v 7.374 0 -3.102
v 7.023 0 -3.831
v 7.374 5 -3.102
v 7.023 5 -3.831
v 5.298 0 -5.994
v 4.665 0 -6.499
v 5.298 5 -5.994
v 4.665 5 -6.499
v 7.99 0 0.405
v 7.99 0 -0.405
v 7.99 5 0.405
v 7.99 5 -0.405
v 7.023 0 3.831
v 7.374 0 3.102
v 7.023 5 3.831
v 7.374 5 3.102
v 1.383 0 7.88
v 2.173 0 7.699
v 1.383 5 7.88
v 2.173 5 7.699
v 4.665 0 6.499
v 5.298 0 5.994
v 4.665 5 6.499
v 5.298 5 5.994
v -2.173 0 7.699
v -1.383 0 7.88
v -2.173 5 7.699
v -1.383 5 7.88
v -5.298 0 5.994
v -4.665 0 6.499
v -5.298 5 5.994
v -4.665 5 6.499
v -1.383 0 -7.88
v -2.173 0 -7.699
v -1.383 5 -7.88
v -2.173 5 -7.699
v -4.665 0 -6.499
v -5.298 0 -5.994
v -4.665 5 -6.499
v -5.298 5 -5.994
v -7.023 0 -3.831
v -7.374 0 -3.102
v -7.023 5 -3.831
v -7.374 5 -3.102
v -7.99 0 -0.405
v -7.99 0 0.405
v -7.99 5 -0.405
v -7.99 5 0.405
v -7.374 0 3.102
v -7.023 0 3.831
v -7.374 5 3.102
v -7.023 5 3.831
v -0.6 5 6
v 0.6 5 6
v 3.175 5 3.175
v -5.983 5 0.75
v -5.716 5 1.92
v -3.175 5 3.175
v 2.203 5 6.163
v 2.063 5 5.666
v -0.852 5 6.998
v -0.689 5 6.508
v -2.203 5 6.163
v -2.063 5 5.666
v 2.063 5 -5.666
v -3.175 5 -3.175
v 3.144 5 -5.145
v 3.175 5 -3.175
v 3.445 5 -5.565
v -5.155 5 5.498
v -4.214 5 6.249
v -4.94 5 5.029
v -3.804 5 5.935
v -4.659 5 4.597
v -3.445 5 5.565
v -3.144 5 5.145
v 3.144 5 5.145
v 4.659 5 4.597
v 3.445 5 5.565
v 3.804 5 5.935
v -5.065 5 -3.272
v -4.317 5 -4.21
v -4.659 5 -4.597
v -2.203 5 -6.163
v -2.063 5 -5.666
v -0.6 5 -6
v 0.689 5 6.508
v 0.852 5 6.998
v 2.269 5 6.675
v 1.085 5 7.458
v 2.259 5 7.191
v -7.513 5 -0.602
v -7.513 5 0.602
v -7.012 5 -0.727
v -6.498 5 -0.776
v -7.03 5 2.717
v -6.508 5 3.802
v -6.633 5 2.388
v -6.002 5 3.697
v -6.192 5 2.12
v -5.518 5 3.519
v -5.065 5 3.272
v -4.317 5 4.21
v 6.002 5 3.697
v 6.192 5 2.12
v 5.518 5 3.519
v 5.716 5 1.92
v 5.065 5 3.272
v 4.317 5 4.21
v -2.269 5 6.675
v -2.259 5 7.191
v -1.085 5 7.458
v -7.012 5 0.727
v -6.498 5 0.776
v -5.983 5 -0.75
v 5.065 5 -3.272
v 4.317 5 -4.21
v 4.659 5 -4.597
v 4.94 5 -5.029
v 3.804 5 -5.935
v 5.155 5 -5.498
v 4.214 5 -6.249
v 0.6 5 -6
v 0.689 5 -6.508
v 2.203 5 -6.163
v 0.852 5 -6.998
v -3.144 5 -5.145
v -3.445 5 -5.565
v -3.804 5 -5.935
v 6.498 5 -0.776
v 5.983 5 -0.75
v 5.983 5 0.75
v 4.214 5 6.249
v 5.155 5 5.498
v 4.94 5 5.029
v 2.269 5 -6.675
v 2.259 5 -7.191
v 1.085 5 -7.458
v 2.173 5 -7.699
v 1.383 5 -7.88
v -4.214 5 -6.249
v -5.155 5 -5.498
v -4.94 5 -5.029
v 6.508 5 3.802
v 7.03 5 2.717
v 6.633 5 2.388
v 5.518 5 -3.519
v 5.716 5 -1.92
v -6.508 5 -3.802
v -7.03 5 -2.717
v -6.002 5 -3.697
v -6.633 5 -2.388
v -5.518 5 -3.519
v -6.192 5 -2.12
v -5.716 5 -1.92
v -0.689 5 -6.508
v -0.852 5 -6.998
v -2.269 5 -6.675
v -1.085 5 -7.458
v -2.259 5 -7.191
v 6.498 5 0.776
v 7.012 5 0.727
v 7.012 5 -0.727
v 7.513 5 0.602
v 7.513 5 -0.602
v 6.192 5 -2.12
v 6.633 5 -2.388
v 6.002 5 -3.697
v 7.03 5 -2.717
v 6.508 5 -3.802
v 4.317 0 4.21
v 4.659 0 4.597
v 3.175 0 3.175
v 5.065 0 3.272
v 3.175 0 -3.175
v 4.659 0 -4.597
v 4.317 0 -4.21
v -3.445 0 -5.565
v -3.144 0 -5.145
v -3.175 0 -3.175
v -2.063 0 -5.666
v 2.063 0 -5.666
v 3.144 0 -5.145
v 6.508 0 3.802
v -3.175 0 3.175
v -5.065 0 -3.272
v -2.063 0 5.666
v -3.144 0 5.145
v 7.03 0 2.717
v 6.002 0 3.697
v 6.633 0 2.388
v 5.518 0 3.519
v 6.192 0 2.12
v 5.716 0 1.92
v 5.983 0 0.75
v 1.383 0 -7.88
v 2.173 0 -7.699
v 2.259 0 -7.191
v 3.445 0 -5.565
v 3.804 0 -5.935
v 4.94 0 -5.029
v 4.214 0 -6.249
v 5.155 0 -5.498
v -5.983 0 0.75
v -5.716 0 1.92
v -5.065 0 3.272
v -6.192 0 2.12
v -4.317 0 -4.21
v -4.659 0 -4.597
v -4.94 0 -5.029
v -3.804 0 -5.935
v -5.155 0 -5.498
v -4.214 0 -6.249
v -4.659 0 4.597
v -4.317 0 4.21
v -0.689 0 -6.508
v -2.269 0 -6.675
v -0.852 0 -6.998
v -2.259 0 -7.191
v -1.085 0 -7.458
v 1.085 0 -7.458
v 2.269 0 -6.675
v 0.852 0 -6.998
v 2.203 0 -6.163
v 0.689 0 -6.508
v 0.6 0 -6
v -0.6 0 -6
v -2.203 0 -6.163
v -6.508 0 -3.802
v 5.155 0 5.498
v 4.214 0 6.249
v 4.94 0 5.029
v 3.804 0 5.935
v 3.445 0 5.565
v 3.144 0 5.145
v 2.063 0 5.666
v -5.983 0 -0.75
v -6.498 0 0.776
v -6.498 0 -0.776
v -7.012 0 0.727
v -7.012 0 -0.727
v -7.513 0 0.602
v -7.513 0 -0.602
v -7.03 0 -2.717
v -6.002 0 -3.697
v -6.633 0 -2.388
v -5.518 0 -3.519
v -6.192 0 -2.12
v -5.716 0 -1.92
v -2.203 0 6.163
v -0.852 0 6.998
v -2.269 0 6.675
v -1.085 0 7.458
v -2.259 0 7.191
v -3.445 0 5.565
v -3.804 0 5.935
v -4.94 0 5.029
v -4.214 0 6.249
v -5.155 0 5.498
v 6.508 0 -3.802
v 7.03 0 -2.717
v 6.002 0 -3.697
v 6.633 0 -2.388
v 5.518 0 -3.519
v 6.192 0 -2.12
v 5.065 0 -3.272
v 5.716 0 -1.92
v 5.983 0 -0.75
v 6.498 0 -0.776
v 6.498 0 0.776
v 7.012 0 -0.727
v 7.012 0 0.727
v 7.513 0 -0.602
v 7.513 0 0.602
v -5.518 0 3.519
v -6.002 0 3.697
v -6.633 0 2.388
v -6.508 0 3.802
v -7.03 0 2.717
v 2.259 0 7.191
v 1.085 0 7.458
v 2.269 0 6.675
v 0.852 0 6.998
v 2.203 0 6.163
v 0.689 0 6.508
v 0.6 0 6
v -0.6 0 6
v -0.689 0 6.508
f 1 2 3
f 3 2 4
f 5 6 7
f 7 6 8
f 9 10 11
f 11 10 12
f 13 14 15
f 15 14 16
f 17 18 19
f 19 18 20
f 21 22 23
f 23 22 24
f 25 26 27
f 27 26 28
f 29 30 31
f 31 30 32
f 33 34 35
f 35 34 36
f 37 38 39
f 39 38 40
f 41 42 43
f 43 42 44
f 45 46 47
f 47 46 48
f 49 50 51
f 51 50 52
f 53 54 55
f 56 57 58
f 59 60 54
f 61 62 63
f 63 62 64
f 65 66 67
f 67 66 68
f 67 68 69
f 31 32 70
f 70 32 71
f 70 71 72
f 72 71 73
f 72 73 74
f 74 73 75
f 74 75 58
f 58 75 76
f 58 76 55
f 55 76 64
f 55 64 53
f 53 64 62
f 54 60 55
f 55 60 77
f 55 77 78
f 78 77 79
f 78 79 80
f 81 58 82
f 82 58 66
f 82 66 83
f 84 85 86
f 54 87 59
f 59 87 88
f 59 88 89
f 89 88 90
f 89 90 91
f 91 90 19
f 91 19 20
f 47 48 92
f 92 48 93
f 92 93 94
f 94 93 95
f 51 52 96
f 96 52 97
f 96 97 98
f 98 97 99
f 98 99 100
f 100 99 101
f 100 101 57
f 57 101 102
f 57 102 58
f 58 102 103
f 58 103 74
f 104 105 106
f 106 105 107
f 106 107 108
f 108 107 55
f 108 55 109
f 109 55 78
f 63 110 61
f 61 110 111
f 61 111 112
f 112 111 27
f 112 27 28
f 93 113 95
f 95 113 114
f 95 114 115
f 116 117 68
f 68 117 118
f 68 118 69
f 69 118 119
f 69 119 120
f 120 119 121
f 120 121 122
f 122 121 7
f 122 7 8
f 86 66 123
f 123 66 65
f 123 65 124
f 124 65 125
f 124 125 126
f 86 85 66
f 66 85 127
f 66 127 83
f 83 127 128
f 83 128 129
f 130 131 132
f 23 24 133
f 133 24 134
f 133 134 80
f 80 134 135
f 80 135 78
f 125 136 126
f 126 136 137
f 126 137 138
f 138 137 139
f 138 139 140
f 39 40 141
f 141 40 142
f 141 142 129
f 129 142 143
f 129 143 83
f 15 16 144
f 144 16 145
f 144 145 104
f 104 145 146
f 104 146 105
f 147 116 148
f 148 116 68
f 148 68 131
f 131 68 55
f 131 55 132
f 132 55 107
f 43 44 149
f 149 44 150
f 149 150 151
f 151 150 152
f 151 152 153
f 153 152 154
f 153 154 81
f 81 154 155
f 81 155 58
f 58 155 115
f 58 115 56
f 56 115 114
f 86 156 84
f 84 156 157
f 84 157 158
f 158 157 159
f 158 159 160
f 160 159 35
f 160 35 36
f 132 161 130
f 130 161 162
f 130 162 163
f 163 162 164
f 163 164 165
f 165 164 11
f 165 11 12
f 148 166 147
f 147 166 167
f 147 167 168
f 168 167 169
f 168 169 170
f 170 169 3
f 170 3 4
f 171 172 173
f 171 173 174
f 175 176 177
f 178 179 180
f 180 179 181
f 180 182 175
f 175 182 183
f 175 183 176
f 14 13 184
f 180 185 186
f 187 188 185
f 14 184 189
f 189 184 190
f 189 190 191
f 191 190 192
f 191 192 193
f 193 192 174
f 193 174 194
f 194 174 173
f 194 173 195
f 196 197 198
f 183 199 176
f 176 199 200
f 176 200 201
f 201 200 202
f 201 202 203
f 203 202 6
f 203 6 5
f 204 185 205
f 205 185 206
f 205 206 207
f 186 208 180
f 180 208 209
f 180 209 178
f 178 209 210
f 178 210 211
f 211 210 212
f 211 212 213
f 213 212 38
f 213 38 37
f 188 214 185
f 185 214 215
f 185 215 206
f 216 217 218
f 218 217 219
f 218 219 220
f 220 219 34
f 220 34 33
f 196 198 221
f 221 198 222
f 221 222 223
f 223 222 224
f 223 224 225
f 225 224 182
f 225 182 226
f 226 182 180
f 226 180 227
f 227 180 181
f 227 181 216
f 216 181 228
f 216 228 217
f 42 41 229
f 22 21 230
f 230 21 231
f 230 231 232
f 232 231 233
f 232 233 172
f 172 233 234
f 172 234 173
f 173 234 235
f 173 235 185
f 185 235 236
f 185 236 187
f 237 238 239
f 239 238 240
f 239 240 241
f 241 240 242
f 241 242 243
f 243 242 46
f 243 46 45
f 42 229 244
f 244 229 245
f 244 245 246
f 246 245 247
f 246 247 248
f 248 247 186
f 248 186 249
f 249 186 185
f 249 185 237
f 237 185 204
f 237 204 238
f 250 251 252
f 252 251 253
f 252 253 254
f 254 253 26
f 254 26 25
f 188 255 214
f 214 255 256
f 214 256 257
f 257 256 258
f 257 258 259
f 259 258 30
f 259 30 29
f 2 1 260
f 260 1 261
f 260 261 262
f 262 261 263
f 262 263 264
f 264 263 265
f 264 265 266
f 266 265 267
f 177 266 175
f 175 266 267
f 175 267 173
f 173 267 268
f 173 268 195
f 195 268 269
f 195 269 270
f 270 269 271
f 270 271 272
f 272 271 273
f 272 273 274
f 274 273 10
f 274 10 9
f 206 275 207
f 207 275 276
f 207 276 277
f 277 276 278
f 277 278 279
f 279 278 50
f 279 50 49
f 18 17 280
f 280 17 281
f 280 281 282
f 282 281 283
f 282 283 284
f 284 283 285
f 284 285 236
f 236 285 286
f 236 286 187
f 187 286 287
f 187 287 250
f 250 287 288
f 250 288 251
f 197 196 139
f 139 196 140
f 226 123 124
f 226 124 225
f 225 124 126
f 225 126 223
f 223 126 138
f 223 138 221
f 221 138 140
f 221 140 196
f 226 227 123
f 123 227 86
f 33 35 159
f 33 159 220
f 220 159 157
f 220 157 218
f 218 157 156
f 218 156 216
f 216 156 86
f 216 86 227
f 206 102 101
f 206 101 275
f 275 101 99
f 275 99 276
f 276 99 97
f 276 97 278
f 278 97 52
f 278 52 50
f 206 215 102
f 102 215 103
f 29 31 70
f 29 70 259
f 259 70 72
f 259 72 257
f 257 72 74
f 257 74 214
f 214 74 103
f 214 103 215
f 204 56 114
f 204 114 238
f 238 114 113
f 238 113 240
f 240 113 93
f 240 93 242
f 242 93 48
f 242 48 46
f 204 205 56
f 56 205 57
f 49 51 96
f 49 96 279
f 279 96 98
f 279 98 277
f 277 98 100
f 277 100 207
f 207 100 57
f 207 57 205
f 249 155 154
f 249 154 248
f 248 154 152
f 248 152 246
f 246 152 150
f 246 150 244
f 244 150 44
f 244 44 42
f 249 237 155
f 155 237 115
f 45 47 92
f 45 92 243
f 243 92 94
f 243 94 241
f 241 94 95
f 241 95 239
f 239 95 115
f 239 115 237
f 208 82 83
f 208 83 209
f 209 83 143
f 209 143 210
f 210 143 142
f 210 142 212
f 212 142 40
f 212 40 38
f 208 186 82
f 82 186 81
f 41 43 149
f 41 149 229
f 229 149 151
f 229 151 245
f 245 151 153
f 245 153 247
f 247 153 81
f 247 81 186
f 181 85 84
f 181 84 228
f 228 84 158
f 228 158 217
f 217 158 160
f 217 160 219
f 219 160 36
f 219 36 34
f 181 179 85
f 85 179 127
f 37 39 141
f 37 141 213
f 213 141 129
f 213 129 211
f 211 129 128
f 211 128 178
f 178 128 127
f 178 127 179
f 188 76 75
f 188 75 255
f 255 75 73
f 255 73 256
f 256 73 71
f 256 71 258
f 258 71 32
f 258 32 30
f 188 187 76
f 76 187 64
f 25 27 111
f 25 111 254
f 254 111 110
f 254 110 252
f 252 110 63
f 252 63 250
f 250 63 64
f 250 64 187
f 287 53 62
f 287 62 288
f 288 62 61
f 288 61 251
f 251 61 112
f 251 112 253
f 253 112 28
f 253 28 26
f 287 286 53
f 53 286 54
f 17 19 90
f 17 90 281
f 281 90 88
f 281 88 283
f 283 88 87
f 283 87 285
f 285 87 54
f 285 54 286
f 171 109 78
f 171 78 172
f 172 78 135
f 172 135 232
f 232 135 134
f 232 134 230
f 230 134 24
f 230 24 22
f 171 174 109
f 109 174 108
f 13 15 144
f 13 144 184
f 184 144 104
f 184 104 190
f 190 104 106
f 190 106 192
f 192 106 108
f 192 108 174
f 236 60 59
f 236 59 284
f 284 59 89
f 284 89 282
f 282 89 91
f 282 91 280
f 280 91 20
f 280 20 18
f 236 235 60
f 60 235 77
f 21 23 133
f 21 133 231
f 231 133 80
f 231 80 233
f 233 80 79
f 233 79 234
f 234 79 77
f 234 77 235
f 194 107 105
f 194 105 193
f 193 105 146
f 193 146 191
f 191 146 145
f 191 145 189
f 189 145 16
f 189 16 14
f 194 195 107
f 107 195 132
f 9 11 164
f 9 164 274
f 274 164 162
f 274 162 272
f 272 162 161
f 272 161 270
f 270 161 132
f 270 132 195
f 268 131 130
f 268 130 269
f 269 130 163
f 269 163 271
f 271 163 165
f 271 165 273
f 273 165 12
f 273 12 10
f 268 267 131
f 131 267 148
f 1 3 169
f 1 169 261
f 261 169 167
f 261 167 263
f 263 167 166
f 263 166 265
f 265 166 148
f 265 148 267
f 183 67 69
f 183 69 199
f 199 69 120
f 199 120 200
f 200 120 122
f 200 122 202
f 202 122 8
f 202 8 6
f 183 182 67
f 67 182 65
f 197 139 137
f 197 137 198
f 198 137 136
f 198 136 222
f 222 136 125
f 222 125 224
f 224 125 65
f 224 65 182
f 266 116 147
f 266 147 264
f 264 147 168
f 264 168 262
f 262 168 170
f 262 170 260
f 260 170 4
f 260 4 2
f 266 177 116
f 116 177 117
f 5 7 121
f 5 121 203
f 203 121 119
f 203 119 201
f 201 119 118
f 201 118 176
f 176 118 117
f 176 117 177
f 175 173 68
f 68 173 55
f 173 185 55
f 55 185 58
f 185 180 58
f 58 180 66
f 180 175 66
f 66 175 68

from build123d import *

# Parameters (mm, degrees)
SKETCH3_R           = 8
BOSS_EXTRUDE3_DEPTH = 5
CUT_EXTRUDE1_DEPTH  = 6
SKETCH5_W           = 6.35
SKETCH5_H           = 6.35
CUT_EXTRUDE2_DEPTH  = 6


with BuildPart() as part:
    # Sketch3 → Boss-Extrude3 (new body)
    with BuildSketch(Plane(origin=(0, 0, 0), x_dir=(1, 0, 0), z_dir=(0, 1, 0))):
        Circle(SKETCH3_R)
    extrude(amount=BOSS_EXTRUDE3_DEPTH)

    # Sketch4 → Cut-Extrude1 (cut, through all)
    with BuildSketch(Plane(origin=(0, 5, 0), x_dir=(1, 0, 0), z_dir=(0, 1, 0))):
        with BuildLine():
            Line((-0.6, 6), (0.6, 6))
            ThreePointArc((0.6, 6), (0.851894231, 6.997970737), (1.383186803, 7.879517388))
            ThreePointArc((1.383186803, 7.879517388), (0, 8), (-1.383186803, 7.879517388))
            ThreePointArc((-1.383186803, 7.879517388), (-0.851894231, 6.997970737), (-0.6, 6))
        make_face()
        with BuildLine():
            Line((2.062721114, 5.666143451), (3.143883755, 5.145482964))
            ThreePointArc((3.143883755, 5.145482964), (3.80383589, 5.935330718), (4.665002715, 6.499057599))
            ThreePointArc((4.665002715, 6.499057599), (3.471069913, 7.207750943), (2.172586219, 7.699342123))
            ThreePointArc((2.172586219, 7.699342123), (2.268775529, 6.674576827), (2.062721114, 5.666143451))
        make_face()
        with BuildLine():
            Line((4.316895014, 4.210037701), (5.065082776, 3.271839922))
            ThreePointArc((5.065082776, 3.271839922), (6.002381201, 3.697125659), (7.022857626, 3.831379746))
            ThreePointArc((7.022857626, 3.831379746), (6.25465186, 4.987918415), (5.298051895, 5.994217724))
            ThreePointArc((5.298051895, 5.994217724), (4.94008647, 5.029201118), (4.316895014, 4.210037701))
        make_face()
        with BuildLine():
            Line((5.716054913, 1.920082351), (5.983080033, 0.750168856))
            ThreePointArc((5.983080033, 0.750168856), (7.0120813, 0.72665952), (7.989749455, 0.404850146))
            ThreePointArc((7.989749455, 0.404850146), (7.799423297, 1.780167472), (7.374173417, 3.10186499))
            ThreePointArc((7.374173417, 3.10186499), (6.6329527, 2.387730448), (5.716054913, 1.920082351))
        make_face()
        with BuildLine():
            Line((5.983080033, -0.750168856), (5.716054913, -1.920082351))
            ThreePointArc((5.716054913, -1.920082351), (6.6329527, -2.387730448), (7.374173417, -3.10186499))
            ThreePointArc((7.374173417, -3.10186499), (7.799423297, -1.780167472), (7.989749455, -0.404850146))
            ThreePointArc((7.989749455, -0.404850146), (7.0120813, -0.72665952), (5.983080033, -0.750168856))
        make_face()
        with BuildLine():
            Line((5.065082776, -3.271839922), (4.316895014, -4.210037701))
            ThreePointArc((4.316895014, -4.210037701), (4.94008647, -5.029201118), (5.298051895, -5.994217724))
            ThreePointArc((5.298051895, -5.994217724), (6.25465186, -4.987918415), (7.022857626, -3.831379746))
            ThreePointArc((7.022857626, -3.831379746), (6.002381201, -3.697125659), (5.065082776, -3.271839922))
        make_face()
        with BuildLine():
            Line((3.143883755, -5.145482964), (2.062721114, -5.666143451))
            ThreePointArc((2.062721114, -5.666143451), (2.268775529, -6.674576827), (2.172586219, -7.699342123))
            ThreePointArc((2.172586219, -7.699342123), (3.471069913, -7.207750943), (4.665002715, -6.499057599))
            ThreePointArc((4.665002715, -6.499057599), (3.80383589, -5.935330718), (3.143883755, -5.145482964))
        make_face()
        with BuildLine():
            Line((0.6, -6), (-0.6, -6))
            ThreePointArc((-0.6, -6), (-0.851894231, -6.997970737), (-1.383186803, -7.879517388))
            ThreePointArc((-1.383186803, -7.879517388), (0, -8), (1.383186803, -7.879517388))
            ThreePointArc((1.383186803, -7.879517388), (0.851894231, -6.997970737), (0.6, -6))
        make_face()
        with BuildLine():
            Line((-2.062721114, -5.666143451), (-3.143883755, -5.145482964))
            ThreePointArc((-3.143883755, -5.145482964), (-3.80383589, -5.935330718), (-4.665002715, -6.499057599))
            ThreePointArc((-4.665002715, -6.499057599), (-3.471069913, -7.207750943), (-2.172586219, -7.699342123))
            ThreePointArc((-2.172586219, -7.699342123), (-2.268775529, -6.674576827), (-2.062721114, -5.666143451))
        make_face()
        with BuildLine():
            Line((-4.316895014, -4.210037701), (-5.065082776, -3.271839922))
            ThreePointArc((-5.065082776, -3.271839922), (-6.002381201, -3.697125659), (-7.022857626, -3.831379746))
            ThreePointArc((-7.022857626, -3.831379746), (-6.25465186, -4.987918415), (-5.298051895, -5.994217724))
            ThreePointArc((-5.298051895, -5.994217724), (-4.94008647, -5.029201118), (-4.316895014, -4.210037701))
        make_face()
        with BuildLine():
            Line((-5.716054913, -1.920082351), (-5.983080033, -0.750168856))
            ThreePointArc((-5.983080033, -0.750168856), (-7.0120813, -0.72665952), (-7.989749455, -0.404850146))
            ThreePointArc((-7.989749455, -0.404850146), (-7.799423297, -1.780167472), (-7.374173417, -3.10186499))
            ThreePointArc((-7.374173417, -3.10186499), (-6.6329527, -2.387730448), (-5.716054913, -1.920082351))
        make_face()
        with BuildLine():
            Line((-5.983080033, 0.750168856), (-5.716054913, 1.920082351))
            ThreePointArc((-5.716054913, 1.920082351), (-6.6329527, 2.387730448), (-7.374173417, 3.10186499))
            ThreePointArc((-7.374173417, 3.10186499), (-7.799423297, 1.780167472), (-7.989749455, 0.404850146))
            ThreePointArc((-7.989749455, 0.404850146), (-7.0120813, 0.72665952), (-5.983080033, 0.750168856))
        make_face()
        with BuildLine():
            Line((-5.065082776, 3.271839922), (-4.316895014, 4.210037701))
            ThreePointArc((-4.316895014, 4.210037701), (-4.94008647, 5.029201118), (-5.298051895, 5.994217724))
            ThreePointArc((-5.298051895, 5.994217724), (-6.25465186, 4.987918415), (-7.022857626, 3.831379746))
            ThreePointArc((-7.022857626, 3.831379746), (-6.002381201, 3.697125659), (-5.065082776, 3.271839922))
        make_face()
        with BuildLine():
            Line((-3.143883755, 5.145482964), (-2.062721114, 5.666143451))
            ThreePointArc((-2.062721114, 5.666143451), (-2.268775529, 6.674576827), (-2.172586219, 7.699342123))
            ThreePointArc((-2.172586219, 7.699342123), (-3.471069913, 7.207750943), (-4.665002715, 6.499057599))
            ThreePointArc((-4.665002715, 6.499057599), (-3.80383589, 5.935330718), (-3.143883755, 5.145482964))
        make_face()
    extrude(amount=-CUT_EXTRUDE1_DEPTH, mode=Mode.SUBTRACT)

    # Sketch5 → Cut-Extrude2 (cut, through all)
    with BuildSketch(Plane(origin=(0, 5, 0), x_dir=(1, 0, 0), z_dir=(0, 1, 0))):
        Rectangle(SKETCH5_W, SKETCH5_H)
    extrude(amount=-CUT_EXTRUDE2_DEPTH, mode=Mode.SUBTRACT)


solid = part.part
